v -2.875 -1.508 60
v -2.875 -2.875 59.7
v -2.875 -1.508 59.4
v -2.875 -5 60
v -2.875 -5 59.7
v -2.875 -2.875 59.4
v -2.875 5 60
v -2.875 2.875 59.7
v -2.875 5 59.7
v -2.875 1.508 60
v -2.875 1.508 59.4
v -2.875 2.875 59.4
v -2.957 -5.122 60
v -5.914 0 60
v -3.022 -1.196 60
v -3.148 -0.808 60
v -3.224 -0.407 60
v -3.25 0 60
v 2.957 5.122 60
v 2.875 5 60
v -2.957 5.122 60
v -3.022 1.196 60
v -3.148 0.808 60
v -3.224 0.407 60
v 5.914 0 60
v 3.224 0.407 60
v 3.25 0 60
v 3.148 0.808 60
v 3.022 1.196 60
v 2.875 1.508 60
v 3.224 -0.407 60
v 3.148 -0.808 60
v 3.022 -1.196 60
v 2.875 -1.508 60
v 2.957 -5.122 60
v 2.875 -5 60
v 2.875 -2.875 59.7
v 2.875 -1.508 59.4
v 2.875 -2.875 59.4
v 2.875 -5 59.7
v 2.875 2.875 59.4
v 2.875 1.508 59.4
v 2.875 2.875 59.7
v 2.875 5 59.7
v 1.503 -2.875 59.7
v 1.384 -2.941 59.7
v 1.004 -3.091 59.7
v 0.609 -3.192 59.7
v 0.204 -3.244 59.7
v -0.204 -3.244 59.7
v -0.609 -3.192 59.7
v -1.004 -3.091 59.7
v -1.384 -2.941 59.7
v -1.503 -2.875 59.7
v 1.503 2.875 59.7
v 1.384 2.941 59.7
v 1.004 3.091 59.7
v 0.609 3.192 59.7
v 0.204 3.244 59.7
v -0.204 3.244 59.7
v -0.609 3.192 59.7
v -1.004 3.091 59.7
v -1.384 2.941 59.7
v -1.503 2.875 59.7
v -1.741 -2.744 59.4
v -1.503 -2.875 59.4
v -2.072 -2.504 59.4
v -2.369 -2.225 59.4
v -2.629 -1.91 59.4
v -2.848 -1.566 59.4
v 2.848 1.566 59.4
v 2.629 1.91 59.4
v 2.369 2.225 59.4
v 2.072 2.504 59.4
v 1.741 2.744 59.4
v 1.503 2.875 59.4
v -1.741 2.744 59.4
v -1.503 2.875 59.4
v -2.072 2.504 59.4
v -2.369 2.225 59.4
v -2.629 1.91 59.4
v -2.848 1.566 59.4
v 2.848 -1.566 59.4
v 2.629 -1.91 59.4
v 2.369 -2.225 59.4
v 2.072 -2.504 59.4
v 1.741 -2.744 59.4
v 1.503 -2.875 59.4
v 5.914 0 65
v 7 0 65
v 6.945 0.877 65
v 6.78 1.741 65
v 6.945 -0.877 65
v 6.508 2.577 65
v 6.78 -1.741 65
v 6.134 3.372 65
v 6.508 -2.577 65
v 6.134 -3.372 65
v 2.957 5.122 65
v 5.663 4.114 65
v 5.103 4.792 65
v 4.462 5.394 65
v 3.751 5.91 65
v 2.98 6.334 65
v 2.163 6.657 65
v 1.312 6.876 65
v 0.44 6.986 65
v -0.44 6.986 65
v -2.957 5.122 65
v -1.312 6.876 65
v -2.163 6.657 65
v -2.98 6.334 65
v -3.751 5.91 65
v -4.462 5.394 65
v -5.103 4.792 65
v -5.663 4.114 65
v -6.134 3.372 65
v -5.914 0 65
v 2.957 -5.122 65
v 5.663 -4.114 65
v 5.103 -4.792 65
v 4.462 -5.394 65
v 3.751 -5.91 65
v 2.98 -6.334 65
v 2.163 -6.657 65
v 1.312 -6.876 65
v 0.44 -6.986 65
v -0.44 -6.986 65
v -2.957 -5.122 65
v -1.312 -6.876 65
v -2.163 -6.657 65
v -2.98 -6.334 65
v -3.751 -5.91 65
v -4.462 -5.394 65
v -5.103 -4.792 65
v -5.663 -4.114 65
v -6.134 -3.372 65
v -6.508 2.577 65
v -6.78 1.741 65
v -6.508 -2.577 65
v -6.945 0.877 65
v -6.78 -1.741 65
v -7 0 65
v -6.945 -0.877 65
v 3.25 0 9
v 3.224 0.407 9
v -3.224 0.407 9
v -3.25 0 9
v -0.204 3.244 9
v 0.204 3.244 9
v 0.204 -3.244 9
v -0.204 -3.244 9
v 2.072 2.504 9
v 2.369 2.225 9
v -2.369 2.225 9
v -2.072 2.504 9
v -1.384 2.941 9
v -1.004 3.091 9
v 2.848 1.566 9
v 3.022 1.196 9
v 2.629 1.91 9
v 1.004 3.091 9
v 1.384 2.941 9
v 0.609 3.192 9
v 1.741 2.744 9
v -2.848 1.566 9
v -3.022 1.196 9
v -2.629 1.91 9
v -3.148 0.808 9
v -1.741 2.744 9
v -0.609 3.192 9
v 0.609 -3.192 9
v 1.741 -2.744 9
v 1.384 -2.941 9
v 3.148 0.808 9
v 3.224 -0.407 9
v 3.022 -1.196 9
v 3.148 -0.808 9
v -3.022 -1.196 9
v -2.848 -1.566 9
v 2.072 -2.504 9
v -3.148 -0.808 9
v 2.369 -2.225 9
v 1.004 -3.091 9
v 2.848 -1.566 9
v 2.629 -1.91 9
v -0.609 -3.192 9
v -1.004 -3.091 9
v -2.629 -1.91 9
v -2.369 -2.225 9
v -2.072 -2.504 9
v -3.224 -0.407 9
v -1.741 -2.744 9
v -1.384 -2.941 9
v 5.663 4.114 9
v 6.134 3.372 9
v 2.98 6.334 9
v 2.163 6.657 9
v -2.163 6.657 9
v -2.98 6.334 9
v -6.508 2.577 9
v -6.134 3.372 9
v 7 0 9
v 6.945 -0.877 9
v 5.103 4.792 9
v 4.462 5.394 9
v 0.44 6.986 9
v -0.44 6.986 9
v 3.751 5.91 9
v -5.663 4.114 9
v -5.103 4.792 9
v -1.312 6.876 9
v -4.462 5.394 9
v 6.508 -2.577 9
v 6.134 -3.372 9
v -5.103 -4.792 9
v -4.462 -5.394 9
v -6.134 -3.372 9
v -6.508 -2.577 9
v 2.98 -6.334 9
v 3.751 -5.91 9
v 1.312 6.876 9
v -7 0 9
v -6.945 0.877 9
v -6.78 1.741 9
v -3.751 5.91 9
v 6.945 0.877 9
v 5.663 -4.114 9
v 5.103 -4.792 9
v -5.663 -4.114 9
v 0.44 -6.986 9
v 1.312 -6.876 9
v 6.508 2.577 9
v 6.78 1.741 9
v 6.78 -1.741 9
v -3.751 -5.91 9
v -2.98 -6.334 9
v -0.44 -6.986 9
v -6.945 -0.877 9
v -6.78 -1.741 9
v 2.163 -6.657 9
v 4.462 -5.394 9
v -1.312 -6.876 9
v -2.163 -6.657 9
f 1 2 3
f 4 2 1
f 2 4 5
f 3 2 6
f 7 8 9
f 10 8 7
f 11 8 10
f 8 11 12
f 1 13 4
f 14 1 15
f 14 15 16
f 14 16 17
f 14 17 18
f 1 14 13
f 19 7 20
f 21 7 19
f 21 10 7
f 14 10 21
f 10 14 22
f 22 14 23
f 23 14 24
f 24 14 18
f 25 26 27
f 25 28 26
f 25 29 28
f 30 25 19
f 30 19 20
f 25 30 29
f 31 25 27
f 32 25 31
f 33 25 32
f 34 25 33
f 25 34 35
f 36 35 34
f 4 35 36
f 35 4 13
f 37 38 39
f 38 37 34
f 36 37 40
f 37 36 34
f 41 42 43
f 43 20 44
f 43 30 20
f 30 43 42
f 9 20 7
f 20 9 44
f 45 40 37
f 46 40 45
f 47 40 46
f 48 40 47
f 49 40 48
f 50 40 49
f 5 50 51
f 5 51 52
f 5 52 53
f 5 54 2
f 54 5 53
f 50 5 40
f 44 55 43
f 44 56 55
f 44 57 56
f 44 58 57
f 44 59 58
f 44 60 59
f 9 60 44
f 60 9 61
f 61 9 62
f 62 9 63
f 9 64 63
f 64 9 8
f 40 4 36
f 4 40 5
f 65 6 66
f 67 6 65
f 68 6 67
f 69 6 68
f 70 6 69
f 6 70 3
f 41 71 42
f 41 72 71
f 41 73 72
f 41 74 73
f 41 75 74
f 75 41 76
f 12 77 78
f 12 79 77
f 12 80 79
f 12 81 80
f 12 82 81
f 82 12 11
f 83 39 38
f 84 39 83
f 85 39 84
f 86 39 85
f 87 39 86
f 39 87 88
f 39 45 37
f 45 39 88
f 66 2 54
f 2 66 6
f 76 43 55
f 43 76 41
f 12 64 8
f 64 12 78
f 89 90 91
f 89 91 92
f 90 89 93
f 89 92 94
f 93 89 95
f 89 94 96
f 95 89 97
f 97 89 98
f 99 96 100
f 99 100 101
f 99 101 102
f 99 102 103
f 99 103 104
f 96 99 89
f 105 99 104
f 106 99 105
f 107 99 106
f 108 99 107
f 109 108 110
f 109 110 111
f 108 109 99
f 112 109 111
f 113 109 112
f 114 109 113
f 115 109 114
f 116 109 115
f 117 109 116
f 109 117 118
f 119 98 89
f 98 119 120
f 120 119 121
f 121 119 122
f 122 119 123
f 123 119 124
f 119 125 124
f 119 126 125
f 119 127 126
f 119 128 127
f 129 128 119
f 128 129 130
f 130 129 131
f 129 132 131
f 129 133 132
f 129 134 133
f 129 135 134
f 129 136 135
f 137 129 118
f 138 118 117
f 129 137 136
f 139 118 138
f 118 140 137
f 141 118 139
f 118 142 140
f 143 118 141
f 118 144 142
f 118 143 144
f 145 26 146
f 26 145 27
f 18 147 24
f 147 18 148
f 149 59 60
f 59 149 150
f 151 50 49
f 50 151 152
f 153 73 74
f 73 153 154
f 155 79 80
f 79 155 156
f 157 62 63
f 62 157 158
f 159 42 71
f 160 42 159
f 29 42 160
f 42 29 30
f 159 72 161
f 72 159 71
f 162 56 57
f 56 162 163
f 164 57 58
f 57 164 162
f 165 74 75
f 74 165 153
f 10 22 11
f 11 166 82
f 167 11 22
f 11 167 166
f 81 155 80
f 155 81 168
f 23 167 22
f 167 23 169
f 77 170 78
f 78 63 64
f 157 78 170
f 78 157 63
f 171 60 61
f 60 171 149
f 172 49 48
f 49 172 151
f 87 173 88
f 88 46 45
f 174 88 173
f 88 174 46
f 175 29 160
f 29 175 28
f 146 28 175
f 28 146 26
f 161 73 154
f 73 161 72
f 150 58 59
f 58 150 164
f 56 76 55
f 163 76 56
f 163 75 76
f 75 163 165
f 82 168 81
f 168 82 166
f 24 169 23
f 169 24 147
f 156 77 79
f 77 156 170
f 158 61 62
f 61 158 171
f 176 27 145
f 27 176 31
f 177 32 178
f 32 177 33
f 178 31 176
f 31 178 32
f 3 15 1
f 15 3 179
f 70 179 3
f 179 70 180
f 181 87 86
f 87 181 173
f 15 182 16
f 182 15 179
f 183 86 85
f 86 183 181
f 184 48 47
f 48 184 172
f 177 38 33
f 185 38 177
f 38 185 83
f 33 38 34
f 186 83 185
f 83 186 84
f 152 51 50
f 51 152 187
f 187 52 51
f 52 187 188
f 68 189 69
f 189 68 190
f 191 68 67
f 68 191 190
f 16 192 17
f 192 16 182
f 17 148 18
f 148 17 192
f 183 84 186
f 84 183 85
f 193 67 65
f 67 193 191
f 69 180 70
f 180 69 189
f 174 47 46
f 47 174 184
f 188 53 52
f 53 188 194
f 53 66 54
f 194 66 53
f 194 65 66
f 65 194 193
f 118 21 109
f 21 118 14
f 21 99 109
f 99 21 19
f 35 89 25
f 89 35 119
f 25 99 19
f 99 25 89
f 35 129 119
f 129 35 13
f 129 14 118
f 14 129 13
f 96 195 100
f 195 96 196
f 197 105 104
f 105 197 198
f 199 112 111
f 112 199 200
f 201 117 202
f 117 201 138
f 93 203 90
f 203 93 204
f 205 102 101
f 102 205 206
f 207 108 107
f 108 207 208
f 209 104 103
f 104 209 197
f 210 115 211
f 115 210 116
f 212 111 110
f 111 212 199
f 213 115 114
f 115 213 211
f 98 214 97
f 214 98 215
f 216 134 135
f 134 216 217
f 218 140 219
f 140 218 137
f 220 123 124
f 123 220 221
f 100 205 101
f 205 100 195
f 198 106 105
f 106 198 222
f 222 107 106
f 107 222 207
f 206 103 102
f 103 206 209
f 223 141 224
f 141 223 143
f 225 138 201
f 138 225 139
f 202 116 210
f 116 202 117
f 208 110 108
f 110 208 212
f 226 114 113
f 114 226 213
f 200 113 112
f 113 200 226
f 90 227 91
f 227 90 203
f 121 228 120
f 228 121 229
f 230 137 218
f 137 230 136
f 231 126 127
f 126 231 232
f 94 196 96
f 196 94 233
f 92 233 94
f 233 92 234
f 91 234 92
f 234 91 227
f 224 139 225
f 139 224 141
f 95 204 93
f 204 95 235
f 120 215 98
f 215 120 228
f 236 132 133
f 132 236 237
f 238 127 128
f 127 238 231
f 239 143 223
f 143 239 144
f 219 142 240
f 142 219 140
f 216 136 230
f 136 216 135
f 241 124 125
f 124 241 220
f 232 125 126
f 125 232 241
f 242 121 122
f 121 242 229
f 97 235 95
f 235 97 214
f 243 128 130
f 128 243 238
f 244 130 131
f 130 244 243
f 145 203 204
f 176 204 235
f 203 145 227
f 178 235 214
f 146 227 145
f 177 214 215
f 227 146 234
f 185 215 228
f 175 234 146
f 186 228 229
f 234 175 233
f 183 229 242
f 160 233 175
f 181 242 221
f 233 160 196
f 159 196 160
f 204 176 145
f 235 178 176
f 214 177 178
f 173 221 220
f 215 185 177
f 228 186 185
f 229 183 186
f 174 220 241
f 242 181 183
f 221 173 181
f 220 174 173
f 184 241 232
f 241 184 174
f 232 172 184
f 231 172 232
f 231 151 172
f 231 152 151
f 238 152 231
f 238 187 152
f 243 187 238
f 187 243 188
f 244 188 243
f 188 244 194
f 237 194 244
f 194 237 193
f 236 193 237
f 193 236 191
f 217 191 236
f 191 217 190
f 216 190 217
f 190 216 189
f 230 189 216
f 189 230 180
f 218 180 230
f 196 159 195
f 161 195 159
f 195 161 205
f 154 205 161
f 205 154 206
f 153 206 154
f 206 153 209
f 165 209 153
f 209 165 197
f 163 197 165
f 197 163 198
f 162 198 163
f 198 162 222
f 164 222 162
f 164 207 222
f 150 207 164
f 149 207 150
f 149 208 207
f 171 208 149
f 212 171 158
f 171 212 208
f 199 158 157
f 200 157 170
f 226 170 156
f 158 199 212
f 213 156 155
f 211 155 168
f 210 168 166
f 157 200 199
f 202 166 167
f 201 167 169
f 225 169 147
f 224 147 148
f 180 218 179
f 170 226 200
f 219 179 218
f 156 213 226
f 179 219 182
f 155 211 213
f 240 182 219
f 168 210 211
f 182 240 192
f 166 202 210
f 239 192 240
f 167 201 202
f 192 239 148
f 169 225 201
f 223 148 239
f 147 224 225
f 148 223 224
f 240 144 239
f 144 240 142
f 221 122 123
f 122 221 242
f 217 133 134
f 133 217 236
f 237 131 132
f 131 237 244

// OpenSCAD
$fn = 50;


difference() {
	union() {
		translate(v = [0, 0, 9.0000000000]) {
			cylinder(h = 56, r = 7.0000000000);
		}
	}
	union() {
		translate(v = [0, 0, 65]) {
			rotate(a = [0, 0, 0]) {
				difference() {
					union() {
						#translate(v = [-2.8750000000, -5.0000000000, -5.3000000000]) {
							cube(size = [5.7500000000, 10, 0.3000000000]);
						}
						#translate(v = [-2.8750000000, -2.8750000000, -5.6000000000]) {
							cube(size = [5.7500000000, 5.7500000000, 0.3000000000]);
						}
						#translate(v = [-2.8750000000, -5.0000000000, 0]) {
							cube(size = [5.7500000000, 10, 0.3000000000]);
						}
						#translate(v = [-2.8750000000, -2.8750000000, 0.3000000000]) {
							cube(size = [5.7500000000, 5.7500000000, 0.3000000000]);
						}
						#translate(v = [0, 0, -100.0000000000]) {
							cylinder(h = 200, r = 3.2500000000);
						}
						translate(v = [0, 0, -5]) {
							#linear_extrude(height = 5) {
								polygon(points = [[5.9142500000, 0.0000000000], [2.9571250000, 5.1218907443], [-2.9571250000, 5.1218907443], [-5.9142500000, 0.0000000000], [-2.9571250000, -5.1218907443], [2.9571250000, -5.1218907443]]);
							}
						}
						#translate(v = [-2.8750000000, -5.0000000000, -5.3000000000]) {
							cube(size = [5.7500000000, 10, 0.3000000000]);
						}
						#translate(v = [-2.8750000000, -2.8750000000, -5.6000000000]) {
							cube(size = [5.7500000000, 5.7500000000, 0.3000000000]);
						}
						#translate(v = [-2.8750000000, -5.0000000000, 0]) {
							cube(size = [5.7500000000, 10, 0.3000000000]);
						}
						#translate(v = [-2.8750000000, -2.8750000000, 0.3000000000]) {
							cube(size = [5.7500000000, 5.7500000000, 0.3000000000]);
						}
						#translate(v = [0, 0, -100.0000000000]) {
							cylinder(h = 200, r = 3.2500000000);
						}
						#translate(v = [-2.8750000000, -5.0000000000, -5.3000000000]) {
							cube(size = [5.7500000000, 10, 0.3000000000]);
						}
						#translate(v = [-2.8750000000, -2.8750000000, -5.6000000000]) {
							cube(size = [5.7500000000, 5.7500000000, 0.3000000000]);
						}
						#translate(v = [-2.8750000000, -5.0000000000, 0]) {
							cube(size = [5.7500000000, 10, 0.3000000000]);
						}
						#translate(v = [-2.8750000000, -2.8750000000, 0.3000000000]) {
							cube(size = [5.7500000000, 5.7500000000, 0.3000000000]);
						}
						#translate(v = [0, 0, -100.0000000000]) {
							cylinder(h = 200, r = 3.2500000000);
						}
					}
					union();
				}
			}
		}
		#translate(v = [0, 0, -100.0000000000]) {
			cylinder(h = 200, r = 3.2500000000);
		}
	}
}
